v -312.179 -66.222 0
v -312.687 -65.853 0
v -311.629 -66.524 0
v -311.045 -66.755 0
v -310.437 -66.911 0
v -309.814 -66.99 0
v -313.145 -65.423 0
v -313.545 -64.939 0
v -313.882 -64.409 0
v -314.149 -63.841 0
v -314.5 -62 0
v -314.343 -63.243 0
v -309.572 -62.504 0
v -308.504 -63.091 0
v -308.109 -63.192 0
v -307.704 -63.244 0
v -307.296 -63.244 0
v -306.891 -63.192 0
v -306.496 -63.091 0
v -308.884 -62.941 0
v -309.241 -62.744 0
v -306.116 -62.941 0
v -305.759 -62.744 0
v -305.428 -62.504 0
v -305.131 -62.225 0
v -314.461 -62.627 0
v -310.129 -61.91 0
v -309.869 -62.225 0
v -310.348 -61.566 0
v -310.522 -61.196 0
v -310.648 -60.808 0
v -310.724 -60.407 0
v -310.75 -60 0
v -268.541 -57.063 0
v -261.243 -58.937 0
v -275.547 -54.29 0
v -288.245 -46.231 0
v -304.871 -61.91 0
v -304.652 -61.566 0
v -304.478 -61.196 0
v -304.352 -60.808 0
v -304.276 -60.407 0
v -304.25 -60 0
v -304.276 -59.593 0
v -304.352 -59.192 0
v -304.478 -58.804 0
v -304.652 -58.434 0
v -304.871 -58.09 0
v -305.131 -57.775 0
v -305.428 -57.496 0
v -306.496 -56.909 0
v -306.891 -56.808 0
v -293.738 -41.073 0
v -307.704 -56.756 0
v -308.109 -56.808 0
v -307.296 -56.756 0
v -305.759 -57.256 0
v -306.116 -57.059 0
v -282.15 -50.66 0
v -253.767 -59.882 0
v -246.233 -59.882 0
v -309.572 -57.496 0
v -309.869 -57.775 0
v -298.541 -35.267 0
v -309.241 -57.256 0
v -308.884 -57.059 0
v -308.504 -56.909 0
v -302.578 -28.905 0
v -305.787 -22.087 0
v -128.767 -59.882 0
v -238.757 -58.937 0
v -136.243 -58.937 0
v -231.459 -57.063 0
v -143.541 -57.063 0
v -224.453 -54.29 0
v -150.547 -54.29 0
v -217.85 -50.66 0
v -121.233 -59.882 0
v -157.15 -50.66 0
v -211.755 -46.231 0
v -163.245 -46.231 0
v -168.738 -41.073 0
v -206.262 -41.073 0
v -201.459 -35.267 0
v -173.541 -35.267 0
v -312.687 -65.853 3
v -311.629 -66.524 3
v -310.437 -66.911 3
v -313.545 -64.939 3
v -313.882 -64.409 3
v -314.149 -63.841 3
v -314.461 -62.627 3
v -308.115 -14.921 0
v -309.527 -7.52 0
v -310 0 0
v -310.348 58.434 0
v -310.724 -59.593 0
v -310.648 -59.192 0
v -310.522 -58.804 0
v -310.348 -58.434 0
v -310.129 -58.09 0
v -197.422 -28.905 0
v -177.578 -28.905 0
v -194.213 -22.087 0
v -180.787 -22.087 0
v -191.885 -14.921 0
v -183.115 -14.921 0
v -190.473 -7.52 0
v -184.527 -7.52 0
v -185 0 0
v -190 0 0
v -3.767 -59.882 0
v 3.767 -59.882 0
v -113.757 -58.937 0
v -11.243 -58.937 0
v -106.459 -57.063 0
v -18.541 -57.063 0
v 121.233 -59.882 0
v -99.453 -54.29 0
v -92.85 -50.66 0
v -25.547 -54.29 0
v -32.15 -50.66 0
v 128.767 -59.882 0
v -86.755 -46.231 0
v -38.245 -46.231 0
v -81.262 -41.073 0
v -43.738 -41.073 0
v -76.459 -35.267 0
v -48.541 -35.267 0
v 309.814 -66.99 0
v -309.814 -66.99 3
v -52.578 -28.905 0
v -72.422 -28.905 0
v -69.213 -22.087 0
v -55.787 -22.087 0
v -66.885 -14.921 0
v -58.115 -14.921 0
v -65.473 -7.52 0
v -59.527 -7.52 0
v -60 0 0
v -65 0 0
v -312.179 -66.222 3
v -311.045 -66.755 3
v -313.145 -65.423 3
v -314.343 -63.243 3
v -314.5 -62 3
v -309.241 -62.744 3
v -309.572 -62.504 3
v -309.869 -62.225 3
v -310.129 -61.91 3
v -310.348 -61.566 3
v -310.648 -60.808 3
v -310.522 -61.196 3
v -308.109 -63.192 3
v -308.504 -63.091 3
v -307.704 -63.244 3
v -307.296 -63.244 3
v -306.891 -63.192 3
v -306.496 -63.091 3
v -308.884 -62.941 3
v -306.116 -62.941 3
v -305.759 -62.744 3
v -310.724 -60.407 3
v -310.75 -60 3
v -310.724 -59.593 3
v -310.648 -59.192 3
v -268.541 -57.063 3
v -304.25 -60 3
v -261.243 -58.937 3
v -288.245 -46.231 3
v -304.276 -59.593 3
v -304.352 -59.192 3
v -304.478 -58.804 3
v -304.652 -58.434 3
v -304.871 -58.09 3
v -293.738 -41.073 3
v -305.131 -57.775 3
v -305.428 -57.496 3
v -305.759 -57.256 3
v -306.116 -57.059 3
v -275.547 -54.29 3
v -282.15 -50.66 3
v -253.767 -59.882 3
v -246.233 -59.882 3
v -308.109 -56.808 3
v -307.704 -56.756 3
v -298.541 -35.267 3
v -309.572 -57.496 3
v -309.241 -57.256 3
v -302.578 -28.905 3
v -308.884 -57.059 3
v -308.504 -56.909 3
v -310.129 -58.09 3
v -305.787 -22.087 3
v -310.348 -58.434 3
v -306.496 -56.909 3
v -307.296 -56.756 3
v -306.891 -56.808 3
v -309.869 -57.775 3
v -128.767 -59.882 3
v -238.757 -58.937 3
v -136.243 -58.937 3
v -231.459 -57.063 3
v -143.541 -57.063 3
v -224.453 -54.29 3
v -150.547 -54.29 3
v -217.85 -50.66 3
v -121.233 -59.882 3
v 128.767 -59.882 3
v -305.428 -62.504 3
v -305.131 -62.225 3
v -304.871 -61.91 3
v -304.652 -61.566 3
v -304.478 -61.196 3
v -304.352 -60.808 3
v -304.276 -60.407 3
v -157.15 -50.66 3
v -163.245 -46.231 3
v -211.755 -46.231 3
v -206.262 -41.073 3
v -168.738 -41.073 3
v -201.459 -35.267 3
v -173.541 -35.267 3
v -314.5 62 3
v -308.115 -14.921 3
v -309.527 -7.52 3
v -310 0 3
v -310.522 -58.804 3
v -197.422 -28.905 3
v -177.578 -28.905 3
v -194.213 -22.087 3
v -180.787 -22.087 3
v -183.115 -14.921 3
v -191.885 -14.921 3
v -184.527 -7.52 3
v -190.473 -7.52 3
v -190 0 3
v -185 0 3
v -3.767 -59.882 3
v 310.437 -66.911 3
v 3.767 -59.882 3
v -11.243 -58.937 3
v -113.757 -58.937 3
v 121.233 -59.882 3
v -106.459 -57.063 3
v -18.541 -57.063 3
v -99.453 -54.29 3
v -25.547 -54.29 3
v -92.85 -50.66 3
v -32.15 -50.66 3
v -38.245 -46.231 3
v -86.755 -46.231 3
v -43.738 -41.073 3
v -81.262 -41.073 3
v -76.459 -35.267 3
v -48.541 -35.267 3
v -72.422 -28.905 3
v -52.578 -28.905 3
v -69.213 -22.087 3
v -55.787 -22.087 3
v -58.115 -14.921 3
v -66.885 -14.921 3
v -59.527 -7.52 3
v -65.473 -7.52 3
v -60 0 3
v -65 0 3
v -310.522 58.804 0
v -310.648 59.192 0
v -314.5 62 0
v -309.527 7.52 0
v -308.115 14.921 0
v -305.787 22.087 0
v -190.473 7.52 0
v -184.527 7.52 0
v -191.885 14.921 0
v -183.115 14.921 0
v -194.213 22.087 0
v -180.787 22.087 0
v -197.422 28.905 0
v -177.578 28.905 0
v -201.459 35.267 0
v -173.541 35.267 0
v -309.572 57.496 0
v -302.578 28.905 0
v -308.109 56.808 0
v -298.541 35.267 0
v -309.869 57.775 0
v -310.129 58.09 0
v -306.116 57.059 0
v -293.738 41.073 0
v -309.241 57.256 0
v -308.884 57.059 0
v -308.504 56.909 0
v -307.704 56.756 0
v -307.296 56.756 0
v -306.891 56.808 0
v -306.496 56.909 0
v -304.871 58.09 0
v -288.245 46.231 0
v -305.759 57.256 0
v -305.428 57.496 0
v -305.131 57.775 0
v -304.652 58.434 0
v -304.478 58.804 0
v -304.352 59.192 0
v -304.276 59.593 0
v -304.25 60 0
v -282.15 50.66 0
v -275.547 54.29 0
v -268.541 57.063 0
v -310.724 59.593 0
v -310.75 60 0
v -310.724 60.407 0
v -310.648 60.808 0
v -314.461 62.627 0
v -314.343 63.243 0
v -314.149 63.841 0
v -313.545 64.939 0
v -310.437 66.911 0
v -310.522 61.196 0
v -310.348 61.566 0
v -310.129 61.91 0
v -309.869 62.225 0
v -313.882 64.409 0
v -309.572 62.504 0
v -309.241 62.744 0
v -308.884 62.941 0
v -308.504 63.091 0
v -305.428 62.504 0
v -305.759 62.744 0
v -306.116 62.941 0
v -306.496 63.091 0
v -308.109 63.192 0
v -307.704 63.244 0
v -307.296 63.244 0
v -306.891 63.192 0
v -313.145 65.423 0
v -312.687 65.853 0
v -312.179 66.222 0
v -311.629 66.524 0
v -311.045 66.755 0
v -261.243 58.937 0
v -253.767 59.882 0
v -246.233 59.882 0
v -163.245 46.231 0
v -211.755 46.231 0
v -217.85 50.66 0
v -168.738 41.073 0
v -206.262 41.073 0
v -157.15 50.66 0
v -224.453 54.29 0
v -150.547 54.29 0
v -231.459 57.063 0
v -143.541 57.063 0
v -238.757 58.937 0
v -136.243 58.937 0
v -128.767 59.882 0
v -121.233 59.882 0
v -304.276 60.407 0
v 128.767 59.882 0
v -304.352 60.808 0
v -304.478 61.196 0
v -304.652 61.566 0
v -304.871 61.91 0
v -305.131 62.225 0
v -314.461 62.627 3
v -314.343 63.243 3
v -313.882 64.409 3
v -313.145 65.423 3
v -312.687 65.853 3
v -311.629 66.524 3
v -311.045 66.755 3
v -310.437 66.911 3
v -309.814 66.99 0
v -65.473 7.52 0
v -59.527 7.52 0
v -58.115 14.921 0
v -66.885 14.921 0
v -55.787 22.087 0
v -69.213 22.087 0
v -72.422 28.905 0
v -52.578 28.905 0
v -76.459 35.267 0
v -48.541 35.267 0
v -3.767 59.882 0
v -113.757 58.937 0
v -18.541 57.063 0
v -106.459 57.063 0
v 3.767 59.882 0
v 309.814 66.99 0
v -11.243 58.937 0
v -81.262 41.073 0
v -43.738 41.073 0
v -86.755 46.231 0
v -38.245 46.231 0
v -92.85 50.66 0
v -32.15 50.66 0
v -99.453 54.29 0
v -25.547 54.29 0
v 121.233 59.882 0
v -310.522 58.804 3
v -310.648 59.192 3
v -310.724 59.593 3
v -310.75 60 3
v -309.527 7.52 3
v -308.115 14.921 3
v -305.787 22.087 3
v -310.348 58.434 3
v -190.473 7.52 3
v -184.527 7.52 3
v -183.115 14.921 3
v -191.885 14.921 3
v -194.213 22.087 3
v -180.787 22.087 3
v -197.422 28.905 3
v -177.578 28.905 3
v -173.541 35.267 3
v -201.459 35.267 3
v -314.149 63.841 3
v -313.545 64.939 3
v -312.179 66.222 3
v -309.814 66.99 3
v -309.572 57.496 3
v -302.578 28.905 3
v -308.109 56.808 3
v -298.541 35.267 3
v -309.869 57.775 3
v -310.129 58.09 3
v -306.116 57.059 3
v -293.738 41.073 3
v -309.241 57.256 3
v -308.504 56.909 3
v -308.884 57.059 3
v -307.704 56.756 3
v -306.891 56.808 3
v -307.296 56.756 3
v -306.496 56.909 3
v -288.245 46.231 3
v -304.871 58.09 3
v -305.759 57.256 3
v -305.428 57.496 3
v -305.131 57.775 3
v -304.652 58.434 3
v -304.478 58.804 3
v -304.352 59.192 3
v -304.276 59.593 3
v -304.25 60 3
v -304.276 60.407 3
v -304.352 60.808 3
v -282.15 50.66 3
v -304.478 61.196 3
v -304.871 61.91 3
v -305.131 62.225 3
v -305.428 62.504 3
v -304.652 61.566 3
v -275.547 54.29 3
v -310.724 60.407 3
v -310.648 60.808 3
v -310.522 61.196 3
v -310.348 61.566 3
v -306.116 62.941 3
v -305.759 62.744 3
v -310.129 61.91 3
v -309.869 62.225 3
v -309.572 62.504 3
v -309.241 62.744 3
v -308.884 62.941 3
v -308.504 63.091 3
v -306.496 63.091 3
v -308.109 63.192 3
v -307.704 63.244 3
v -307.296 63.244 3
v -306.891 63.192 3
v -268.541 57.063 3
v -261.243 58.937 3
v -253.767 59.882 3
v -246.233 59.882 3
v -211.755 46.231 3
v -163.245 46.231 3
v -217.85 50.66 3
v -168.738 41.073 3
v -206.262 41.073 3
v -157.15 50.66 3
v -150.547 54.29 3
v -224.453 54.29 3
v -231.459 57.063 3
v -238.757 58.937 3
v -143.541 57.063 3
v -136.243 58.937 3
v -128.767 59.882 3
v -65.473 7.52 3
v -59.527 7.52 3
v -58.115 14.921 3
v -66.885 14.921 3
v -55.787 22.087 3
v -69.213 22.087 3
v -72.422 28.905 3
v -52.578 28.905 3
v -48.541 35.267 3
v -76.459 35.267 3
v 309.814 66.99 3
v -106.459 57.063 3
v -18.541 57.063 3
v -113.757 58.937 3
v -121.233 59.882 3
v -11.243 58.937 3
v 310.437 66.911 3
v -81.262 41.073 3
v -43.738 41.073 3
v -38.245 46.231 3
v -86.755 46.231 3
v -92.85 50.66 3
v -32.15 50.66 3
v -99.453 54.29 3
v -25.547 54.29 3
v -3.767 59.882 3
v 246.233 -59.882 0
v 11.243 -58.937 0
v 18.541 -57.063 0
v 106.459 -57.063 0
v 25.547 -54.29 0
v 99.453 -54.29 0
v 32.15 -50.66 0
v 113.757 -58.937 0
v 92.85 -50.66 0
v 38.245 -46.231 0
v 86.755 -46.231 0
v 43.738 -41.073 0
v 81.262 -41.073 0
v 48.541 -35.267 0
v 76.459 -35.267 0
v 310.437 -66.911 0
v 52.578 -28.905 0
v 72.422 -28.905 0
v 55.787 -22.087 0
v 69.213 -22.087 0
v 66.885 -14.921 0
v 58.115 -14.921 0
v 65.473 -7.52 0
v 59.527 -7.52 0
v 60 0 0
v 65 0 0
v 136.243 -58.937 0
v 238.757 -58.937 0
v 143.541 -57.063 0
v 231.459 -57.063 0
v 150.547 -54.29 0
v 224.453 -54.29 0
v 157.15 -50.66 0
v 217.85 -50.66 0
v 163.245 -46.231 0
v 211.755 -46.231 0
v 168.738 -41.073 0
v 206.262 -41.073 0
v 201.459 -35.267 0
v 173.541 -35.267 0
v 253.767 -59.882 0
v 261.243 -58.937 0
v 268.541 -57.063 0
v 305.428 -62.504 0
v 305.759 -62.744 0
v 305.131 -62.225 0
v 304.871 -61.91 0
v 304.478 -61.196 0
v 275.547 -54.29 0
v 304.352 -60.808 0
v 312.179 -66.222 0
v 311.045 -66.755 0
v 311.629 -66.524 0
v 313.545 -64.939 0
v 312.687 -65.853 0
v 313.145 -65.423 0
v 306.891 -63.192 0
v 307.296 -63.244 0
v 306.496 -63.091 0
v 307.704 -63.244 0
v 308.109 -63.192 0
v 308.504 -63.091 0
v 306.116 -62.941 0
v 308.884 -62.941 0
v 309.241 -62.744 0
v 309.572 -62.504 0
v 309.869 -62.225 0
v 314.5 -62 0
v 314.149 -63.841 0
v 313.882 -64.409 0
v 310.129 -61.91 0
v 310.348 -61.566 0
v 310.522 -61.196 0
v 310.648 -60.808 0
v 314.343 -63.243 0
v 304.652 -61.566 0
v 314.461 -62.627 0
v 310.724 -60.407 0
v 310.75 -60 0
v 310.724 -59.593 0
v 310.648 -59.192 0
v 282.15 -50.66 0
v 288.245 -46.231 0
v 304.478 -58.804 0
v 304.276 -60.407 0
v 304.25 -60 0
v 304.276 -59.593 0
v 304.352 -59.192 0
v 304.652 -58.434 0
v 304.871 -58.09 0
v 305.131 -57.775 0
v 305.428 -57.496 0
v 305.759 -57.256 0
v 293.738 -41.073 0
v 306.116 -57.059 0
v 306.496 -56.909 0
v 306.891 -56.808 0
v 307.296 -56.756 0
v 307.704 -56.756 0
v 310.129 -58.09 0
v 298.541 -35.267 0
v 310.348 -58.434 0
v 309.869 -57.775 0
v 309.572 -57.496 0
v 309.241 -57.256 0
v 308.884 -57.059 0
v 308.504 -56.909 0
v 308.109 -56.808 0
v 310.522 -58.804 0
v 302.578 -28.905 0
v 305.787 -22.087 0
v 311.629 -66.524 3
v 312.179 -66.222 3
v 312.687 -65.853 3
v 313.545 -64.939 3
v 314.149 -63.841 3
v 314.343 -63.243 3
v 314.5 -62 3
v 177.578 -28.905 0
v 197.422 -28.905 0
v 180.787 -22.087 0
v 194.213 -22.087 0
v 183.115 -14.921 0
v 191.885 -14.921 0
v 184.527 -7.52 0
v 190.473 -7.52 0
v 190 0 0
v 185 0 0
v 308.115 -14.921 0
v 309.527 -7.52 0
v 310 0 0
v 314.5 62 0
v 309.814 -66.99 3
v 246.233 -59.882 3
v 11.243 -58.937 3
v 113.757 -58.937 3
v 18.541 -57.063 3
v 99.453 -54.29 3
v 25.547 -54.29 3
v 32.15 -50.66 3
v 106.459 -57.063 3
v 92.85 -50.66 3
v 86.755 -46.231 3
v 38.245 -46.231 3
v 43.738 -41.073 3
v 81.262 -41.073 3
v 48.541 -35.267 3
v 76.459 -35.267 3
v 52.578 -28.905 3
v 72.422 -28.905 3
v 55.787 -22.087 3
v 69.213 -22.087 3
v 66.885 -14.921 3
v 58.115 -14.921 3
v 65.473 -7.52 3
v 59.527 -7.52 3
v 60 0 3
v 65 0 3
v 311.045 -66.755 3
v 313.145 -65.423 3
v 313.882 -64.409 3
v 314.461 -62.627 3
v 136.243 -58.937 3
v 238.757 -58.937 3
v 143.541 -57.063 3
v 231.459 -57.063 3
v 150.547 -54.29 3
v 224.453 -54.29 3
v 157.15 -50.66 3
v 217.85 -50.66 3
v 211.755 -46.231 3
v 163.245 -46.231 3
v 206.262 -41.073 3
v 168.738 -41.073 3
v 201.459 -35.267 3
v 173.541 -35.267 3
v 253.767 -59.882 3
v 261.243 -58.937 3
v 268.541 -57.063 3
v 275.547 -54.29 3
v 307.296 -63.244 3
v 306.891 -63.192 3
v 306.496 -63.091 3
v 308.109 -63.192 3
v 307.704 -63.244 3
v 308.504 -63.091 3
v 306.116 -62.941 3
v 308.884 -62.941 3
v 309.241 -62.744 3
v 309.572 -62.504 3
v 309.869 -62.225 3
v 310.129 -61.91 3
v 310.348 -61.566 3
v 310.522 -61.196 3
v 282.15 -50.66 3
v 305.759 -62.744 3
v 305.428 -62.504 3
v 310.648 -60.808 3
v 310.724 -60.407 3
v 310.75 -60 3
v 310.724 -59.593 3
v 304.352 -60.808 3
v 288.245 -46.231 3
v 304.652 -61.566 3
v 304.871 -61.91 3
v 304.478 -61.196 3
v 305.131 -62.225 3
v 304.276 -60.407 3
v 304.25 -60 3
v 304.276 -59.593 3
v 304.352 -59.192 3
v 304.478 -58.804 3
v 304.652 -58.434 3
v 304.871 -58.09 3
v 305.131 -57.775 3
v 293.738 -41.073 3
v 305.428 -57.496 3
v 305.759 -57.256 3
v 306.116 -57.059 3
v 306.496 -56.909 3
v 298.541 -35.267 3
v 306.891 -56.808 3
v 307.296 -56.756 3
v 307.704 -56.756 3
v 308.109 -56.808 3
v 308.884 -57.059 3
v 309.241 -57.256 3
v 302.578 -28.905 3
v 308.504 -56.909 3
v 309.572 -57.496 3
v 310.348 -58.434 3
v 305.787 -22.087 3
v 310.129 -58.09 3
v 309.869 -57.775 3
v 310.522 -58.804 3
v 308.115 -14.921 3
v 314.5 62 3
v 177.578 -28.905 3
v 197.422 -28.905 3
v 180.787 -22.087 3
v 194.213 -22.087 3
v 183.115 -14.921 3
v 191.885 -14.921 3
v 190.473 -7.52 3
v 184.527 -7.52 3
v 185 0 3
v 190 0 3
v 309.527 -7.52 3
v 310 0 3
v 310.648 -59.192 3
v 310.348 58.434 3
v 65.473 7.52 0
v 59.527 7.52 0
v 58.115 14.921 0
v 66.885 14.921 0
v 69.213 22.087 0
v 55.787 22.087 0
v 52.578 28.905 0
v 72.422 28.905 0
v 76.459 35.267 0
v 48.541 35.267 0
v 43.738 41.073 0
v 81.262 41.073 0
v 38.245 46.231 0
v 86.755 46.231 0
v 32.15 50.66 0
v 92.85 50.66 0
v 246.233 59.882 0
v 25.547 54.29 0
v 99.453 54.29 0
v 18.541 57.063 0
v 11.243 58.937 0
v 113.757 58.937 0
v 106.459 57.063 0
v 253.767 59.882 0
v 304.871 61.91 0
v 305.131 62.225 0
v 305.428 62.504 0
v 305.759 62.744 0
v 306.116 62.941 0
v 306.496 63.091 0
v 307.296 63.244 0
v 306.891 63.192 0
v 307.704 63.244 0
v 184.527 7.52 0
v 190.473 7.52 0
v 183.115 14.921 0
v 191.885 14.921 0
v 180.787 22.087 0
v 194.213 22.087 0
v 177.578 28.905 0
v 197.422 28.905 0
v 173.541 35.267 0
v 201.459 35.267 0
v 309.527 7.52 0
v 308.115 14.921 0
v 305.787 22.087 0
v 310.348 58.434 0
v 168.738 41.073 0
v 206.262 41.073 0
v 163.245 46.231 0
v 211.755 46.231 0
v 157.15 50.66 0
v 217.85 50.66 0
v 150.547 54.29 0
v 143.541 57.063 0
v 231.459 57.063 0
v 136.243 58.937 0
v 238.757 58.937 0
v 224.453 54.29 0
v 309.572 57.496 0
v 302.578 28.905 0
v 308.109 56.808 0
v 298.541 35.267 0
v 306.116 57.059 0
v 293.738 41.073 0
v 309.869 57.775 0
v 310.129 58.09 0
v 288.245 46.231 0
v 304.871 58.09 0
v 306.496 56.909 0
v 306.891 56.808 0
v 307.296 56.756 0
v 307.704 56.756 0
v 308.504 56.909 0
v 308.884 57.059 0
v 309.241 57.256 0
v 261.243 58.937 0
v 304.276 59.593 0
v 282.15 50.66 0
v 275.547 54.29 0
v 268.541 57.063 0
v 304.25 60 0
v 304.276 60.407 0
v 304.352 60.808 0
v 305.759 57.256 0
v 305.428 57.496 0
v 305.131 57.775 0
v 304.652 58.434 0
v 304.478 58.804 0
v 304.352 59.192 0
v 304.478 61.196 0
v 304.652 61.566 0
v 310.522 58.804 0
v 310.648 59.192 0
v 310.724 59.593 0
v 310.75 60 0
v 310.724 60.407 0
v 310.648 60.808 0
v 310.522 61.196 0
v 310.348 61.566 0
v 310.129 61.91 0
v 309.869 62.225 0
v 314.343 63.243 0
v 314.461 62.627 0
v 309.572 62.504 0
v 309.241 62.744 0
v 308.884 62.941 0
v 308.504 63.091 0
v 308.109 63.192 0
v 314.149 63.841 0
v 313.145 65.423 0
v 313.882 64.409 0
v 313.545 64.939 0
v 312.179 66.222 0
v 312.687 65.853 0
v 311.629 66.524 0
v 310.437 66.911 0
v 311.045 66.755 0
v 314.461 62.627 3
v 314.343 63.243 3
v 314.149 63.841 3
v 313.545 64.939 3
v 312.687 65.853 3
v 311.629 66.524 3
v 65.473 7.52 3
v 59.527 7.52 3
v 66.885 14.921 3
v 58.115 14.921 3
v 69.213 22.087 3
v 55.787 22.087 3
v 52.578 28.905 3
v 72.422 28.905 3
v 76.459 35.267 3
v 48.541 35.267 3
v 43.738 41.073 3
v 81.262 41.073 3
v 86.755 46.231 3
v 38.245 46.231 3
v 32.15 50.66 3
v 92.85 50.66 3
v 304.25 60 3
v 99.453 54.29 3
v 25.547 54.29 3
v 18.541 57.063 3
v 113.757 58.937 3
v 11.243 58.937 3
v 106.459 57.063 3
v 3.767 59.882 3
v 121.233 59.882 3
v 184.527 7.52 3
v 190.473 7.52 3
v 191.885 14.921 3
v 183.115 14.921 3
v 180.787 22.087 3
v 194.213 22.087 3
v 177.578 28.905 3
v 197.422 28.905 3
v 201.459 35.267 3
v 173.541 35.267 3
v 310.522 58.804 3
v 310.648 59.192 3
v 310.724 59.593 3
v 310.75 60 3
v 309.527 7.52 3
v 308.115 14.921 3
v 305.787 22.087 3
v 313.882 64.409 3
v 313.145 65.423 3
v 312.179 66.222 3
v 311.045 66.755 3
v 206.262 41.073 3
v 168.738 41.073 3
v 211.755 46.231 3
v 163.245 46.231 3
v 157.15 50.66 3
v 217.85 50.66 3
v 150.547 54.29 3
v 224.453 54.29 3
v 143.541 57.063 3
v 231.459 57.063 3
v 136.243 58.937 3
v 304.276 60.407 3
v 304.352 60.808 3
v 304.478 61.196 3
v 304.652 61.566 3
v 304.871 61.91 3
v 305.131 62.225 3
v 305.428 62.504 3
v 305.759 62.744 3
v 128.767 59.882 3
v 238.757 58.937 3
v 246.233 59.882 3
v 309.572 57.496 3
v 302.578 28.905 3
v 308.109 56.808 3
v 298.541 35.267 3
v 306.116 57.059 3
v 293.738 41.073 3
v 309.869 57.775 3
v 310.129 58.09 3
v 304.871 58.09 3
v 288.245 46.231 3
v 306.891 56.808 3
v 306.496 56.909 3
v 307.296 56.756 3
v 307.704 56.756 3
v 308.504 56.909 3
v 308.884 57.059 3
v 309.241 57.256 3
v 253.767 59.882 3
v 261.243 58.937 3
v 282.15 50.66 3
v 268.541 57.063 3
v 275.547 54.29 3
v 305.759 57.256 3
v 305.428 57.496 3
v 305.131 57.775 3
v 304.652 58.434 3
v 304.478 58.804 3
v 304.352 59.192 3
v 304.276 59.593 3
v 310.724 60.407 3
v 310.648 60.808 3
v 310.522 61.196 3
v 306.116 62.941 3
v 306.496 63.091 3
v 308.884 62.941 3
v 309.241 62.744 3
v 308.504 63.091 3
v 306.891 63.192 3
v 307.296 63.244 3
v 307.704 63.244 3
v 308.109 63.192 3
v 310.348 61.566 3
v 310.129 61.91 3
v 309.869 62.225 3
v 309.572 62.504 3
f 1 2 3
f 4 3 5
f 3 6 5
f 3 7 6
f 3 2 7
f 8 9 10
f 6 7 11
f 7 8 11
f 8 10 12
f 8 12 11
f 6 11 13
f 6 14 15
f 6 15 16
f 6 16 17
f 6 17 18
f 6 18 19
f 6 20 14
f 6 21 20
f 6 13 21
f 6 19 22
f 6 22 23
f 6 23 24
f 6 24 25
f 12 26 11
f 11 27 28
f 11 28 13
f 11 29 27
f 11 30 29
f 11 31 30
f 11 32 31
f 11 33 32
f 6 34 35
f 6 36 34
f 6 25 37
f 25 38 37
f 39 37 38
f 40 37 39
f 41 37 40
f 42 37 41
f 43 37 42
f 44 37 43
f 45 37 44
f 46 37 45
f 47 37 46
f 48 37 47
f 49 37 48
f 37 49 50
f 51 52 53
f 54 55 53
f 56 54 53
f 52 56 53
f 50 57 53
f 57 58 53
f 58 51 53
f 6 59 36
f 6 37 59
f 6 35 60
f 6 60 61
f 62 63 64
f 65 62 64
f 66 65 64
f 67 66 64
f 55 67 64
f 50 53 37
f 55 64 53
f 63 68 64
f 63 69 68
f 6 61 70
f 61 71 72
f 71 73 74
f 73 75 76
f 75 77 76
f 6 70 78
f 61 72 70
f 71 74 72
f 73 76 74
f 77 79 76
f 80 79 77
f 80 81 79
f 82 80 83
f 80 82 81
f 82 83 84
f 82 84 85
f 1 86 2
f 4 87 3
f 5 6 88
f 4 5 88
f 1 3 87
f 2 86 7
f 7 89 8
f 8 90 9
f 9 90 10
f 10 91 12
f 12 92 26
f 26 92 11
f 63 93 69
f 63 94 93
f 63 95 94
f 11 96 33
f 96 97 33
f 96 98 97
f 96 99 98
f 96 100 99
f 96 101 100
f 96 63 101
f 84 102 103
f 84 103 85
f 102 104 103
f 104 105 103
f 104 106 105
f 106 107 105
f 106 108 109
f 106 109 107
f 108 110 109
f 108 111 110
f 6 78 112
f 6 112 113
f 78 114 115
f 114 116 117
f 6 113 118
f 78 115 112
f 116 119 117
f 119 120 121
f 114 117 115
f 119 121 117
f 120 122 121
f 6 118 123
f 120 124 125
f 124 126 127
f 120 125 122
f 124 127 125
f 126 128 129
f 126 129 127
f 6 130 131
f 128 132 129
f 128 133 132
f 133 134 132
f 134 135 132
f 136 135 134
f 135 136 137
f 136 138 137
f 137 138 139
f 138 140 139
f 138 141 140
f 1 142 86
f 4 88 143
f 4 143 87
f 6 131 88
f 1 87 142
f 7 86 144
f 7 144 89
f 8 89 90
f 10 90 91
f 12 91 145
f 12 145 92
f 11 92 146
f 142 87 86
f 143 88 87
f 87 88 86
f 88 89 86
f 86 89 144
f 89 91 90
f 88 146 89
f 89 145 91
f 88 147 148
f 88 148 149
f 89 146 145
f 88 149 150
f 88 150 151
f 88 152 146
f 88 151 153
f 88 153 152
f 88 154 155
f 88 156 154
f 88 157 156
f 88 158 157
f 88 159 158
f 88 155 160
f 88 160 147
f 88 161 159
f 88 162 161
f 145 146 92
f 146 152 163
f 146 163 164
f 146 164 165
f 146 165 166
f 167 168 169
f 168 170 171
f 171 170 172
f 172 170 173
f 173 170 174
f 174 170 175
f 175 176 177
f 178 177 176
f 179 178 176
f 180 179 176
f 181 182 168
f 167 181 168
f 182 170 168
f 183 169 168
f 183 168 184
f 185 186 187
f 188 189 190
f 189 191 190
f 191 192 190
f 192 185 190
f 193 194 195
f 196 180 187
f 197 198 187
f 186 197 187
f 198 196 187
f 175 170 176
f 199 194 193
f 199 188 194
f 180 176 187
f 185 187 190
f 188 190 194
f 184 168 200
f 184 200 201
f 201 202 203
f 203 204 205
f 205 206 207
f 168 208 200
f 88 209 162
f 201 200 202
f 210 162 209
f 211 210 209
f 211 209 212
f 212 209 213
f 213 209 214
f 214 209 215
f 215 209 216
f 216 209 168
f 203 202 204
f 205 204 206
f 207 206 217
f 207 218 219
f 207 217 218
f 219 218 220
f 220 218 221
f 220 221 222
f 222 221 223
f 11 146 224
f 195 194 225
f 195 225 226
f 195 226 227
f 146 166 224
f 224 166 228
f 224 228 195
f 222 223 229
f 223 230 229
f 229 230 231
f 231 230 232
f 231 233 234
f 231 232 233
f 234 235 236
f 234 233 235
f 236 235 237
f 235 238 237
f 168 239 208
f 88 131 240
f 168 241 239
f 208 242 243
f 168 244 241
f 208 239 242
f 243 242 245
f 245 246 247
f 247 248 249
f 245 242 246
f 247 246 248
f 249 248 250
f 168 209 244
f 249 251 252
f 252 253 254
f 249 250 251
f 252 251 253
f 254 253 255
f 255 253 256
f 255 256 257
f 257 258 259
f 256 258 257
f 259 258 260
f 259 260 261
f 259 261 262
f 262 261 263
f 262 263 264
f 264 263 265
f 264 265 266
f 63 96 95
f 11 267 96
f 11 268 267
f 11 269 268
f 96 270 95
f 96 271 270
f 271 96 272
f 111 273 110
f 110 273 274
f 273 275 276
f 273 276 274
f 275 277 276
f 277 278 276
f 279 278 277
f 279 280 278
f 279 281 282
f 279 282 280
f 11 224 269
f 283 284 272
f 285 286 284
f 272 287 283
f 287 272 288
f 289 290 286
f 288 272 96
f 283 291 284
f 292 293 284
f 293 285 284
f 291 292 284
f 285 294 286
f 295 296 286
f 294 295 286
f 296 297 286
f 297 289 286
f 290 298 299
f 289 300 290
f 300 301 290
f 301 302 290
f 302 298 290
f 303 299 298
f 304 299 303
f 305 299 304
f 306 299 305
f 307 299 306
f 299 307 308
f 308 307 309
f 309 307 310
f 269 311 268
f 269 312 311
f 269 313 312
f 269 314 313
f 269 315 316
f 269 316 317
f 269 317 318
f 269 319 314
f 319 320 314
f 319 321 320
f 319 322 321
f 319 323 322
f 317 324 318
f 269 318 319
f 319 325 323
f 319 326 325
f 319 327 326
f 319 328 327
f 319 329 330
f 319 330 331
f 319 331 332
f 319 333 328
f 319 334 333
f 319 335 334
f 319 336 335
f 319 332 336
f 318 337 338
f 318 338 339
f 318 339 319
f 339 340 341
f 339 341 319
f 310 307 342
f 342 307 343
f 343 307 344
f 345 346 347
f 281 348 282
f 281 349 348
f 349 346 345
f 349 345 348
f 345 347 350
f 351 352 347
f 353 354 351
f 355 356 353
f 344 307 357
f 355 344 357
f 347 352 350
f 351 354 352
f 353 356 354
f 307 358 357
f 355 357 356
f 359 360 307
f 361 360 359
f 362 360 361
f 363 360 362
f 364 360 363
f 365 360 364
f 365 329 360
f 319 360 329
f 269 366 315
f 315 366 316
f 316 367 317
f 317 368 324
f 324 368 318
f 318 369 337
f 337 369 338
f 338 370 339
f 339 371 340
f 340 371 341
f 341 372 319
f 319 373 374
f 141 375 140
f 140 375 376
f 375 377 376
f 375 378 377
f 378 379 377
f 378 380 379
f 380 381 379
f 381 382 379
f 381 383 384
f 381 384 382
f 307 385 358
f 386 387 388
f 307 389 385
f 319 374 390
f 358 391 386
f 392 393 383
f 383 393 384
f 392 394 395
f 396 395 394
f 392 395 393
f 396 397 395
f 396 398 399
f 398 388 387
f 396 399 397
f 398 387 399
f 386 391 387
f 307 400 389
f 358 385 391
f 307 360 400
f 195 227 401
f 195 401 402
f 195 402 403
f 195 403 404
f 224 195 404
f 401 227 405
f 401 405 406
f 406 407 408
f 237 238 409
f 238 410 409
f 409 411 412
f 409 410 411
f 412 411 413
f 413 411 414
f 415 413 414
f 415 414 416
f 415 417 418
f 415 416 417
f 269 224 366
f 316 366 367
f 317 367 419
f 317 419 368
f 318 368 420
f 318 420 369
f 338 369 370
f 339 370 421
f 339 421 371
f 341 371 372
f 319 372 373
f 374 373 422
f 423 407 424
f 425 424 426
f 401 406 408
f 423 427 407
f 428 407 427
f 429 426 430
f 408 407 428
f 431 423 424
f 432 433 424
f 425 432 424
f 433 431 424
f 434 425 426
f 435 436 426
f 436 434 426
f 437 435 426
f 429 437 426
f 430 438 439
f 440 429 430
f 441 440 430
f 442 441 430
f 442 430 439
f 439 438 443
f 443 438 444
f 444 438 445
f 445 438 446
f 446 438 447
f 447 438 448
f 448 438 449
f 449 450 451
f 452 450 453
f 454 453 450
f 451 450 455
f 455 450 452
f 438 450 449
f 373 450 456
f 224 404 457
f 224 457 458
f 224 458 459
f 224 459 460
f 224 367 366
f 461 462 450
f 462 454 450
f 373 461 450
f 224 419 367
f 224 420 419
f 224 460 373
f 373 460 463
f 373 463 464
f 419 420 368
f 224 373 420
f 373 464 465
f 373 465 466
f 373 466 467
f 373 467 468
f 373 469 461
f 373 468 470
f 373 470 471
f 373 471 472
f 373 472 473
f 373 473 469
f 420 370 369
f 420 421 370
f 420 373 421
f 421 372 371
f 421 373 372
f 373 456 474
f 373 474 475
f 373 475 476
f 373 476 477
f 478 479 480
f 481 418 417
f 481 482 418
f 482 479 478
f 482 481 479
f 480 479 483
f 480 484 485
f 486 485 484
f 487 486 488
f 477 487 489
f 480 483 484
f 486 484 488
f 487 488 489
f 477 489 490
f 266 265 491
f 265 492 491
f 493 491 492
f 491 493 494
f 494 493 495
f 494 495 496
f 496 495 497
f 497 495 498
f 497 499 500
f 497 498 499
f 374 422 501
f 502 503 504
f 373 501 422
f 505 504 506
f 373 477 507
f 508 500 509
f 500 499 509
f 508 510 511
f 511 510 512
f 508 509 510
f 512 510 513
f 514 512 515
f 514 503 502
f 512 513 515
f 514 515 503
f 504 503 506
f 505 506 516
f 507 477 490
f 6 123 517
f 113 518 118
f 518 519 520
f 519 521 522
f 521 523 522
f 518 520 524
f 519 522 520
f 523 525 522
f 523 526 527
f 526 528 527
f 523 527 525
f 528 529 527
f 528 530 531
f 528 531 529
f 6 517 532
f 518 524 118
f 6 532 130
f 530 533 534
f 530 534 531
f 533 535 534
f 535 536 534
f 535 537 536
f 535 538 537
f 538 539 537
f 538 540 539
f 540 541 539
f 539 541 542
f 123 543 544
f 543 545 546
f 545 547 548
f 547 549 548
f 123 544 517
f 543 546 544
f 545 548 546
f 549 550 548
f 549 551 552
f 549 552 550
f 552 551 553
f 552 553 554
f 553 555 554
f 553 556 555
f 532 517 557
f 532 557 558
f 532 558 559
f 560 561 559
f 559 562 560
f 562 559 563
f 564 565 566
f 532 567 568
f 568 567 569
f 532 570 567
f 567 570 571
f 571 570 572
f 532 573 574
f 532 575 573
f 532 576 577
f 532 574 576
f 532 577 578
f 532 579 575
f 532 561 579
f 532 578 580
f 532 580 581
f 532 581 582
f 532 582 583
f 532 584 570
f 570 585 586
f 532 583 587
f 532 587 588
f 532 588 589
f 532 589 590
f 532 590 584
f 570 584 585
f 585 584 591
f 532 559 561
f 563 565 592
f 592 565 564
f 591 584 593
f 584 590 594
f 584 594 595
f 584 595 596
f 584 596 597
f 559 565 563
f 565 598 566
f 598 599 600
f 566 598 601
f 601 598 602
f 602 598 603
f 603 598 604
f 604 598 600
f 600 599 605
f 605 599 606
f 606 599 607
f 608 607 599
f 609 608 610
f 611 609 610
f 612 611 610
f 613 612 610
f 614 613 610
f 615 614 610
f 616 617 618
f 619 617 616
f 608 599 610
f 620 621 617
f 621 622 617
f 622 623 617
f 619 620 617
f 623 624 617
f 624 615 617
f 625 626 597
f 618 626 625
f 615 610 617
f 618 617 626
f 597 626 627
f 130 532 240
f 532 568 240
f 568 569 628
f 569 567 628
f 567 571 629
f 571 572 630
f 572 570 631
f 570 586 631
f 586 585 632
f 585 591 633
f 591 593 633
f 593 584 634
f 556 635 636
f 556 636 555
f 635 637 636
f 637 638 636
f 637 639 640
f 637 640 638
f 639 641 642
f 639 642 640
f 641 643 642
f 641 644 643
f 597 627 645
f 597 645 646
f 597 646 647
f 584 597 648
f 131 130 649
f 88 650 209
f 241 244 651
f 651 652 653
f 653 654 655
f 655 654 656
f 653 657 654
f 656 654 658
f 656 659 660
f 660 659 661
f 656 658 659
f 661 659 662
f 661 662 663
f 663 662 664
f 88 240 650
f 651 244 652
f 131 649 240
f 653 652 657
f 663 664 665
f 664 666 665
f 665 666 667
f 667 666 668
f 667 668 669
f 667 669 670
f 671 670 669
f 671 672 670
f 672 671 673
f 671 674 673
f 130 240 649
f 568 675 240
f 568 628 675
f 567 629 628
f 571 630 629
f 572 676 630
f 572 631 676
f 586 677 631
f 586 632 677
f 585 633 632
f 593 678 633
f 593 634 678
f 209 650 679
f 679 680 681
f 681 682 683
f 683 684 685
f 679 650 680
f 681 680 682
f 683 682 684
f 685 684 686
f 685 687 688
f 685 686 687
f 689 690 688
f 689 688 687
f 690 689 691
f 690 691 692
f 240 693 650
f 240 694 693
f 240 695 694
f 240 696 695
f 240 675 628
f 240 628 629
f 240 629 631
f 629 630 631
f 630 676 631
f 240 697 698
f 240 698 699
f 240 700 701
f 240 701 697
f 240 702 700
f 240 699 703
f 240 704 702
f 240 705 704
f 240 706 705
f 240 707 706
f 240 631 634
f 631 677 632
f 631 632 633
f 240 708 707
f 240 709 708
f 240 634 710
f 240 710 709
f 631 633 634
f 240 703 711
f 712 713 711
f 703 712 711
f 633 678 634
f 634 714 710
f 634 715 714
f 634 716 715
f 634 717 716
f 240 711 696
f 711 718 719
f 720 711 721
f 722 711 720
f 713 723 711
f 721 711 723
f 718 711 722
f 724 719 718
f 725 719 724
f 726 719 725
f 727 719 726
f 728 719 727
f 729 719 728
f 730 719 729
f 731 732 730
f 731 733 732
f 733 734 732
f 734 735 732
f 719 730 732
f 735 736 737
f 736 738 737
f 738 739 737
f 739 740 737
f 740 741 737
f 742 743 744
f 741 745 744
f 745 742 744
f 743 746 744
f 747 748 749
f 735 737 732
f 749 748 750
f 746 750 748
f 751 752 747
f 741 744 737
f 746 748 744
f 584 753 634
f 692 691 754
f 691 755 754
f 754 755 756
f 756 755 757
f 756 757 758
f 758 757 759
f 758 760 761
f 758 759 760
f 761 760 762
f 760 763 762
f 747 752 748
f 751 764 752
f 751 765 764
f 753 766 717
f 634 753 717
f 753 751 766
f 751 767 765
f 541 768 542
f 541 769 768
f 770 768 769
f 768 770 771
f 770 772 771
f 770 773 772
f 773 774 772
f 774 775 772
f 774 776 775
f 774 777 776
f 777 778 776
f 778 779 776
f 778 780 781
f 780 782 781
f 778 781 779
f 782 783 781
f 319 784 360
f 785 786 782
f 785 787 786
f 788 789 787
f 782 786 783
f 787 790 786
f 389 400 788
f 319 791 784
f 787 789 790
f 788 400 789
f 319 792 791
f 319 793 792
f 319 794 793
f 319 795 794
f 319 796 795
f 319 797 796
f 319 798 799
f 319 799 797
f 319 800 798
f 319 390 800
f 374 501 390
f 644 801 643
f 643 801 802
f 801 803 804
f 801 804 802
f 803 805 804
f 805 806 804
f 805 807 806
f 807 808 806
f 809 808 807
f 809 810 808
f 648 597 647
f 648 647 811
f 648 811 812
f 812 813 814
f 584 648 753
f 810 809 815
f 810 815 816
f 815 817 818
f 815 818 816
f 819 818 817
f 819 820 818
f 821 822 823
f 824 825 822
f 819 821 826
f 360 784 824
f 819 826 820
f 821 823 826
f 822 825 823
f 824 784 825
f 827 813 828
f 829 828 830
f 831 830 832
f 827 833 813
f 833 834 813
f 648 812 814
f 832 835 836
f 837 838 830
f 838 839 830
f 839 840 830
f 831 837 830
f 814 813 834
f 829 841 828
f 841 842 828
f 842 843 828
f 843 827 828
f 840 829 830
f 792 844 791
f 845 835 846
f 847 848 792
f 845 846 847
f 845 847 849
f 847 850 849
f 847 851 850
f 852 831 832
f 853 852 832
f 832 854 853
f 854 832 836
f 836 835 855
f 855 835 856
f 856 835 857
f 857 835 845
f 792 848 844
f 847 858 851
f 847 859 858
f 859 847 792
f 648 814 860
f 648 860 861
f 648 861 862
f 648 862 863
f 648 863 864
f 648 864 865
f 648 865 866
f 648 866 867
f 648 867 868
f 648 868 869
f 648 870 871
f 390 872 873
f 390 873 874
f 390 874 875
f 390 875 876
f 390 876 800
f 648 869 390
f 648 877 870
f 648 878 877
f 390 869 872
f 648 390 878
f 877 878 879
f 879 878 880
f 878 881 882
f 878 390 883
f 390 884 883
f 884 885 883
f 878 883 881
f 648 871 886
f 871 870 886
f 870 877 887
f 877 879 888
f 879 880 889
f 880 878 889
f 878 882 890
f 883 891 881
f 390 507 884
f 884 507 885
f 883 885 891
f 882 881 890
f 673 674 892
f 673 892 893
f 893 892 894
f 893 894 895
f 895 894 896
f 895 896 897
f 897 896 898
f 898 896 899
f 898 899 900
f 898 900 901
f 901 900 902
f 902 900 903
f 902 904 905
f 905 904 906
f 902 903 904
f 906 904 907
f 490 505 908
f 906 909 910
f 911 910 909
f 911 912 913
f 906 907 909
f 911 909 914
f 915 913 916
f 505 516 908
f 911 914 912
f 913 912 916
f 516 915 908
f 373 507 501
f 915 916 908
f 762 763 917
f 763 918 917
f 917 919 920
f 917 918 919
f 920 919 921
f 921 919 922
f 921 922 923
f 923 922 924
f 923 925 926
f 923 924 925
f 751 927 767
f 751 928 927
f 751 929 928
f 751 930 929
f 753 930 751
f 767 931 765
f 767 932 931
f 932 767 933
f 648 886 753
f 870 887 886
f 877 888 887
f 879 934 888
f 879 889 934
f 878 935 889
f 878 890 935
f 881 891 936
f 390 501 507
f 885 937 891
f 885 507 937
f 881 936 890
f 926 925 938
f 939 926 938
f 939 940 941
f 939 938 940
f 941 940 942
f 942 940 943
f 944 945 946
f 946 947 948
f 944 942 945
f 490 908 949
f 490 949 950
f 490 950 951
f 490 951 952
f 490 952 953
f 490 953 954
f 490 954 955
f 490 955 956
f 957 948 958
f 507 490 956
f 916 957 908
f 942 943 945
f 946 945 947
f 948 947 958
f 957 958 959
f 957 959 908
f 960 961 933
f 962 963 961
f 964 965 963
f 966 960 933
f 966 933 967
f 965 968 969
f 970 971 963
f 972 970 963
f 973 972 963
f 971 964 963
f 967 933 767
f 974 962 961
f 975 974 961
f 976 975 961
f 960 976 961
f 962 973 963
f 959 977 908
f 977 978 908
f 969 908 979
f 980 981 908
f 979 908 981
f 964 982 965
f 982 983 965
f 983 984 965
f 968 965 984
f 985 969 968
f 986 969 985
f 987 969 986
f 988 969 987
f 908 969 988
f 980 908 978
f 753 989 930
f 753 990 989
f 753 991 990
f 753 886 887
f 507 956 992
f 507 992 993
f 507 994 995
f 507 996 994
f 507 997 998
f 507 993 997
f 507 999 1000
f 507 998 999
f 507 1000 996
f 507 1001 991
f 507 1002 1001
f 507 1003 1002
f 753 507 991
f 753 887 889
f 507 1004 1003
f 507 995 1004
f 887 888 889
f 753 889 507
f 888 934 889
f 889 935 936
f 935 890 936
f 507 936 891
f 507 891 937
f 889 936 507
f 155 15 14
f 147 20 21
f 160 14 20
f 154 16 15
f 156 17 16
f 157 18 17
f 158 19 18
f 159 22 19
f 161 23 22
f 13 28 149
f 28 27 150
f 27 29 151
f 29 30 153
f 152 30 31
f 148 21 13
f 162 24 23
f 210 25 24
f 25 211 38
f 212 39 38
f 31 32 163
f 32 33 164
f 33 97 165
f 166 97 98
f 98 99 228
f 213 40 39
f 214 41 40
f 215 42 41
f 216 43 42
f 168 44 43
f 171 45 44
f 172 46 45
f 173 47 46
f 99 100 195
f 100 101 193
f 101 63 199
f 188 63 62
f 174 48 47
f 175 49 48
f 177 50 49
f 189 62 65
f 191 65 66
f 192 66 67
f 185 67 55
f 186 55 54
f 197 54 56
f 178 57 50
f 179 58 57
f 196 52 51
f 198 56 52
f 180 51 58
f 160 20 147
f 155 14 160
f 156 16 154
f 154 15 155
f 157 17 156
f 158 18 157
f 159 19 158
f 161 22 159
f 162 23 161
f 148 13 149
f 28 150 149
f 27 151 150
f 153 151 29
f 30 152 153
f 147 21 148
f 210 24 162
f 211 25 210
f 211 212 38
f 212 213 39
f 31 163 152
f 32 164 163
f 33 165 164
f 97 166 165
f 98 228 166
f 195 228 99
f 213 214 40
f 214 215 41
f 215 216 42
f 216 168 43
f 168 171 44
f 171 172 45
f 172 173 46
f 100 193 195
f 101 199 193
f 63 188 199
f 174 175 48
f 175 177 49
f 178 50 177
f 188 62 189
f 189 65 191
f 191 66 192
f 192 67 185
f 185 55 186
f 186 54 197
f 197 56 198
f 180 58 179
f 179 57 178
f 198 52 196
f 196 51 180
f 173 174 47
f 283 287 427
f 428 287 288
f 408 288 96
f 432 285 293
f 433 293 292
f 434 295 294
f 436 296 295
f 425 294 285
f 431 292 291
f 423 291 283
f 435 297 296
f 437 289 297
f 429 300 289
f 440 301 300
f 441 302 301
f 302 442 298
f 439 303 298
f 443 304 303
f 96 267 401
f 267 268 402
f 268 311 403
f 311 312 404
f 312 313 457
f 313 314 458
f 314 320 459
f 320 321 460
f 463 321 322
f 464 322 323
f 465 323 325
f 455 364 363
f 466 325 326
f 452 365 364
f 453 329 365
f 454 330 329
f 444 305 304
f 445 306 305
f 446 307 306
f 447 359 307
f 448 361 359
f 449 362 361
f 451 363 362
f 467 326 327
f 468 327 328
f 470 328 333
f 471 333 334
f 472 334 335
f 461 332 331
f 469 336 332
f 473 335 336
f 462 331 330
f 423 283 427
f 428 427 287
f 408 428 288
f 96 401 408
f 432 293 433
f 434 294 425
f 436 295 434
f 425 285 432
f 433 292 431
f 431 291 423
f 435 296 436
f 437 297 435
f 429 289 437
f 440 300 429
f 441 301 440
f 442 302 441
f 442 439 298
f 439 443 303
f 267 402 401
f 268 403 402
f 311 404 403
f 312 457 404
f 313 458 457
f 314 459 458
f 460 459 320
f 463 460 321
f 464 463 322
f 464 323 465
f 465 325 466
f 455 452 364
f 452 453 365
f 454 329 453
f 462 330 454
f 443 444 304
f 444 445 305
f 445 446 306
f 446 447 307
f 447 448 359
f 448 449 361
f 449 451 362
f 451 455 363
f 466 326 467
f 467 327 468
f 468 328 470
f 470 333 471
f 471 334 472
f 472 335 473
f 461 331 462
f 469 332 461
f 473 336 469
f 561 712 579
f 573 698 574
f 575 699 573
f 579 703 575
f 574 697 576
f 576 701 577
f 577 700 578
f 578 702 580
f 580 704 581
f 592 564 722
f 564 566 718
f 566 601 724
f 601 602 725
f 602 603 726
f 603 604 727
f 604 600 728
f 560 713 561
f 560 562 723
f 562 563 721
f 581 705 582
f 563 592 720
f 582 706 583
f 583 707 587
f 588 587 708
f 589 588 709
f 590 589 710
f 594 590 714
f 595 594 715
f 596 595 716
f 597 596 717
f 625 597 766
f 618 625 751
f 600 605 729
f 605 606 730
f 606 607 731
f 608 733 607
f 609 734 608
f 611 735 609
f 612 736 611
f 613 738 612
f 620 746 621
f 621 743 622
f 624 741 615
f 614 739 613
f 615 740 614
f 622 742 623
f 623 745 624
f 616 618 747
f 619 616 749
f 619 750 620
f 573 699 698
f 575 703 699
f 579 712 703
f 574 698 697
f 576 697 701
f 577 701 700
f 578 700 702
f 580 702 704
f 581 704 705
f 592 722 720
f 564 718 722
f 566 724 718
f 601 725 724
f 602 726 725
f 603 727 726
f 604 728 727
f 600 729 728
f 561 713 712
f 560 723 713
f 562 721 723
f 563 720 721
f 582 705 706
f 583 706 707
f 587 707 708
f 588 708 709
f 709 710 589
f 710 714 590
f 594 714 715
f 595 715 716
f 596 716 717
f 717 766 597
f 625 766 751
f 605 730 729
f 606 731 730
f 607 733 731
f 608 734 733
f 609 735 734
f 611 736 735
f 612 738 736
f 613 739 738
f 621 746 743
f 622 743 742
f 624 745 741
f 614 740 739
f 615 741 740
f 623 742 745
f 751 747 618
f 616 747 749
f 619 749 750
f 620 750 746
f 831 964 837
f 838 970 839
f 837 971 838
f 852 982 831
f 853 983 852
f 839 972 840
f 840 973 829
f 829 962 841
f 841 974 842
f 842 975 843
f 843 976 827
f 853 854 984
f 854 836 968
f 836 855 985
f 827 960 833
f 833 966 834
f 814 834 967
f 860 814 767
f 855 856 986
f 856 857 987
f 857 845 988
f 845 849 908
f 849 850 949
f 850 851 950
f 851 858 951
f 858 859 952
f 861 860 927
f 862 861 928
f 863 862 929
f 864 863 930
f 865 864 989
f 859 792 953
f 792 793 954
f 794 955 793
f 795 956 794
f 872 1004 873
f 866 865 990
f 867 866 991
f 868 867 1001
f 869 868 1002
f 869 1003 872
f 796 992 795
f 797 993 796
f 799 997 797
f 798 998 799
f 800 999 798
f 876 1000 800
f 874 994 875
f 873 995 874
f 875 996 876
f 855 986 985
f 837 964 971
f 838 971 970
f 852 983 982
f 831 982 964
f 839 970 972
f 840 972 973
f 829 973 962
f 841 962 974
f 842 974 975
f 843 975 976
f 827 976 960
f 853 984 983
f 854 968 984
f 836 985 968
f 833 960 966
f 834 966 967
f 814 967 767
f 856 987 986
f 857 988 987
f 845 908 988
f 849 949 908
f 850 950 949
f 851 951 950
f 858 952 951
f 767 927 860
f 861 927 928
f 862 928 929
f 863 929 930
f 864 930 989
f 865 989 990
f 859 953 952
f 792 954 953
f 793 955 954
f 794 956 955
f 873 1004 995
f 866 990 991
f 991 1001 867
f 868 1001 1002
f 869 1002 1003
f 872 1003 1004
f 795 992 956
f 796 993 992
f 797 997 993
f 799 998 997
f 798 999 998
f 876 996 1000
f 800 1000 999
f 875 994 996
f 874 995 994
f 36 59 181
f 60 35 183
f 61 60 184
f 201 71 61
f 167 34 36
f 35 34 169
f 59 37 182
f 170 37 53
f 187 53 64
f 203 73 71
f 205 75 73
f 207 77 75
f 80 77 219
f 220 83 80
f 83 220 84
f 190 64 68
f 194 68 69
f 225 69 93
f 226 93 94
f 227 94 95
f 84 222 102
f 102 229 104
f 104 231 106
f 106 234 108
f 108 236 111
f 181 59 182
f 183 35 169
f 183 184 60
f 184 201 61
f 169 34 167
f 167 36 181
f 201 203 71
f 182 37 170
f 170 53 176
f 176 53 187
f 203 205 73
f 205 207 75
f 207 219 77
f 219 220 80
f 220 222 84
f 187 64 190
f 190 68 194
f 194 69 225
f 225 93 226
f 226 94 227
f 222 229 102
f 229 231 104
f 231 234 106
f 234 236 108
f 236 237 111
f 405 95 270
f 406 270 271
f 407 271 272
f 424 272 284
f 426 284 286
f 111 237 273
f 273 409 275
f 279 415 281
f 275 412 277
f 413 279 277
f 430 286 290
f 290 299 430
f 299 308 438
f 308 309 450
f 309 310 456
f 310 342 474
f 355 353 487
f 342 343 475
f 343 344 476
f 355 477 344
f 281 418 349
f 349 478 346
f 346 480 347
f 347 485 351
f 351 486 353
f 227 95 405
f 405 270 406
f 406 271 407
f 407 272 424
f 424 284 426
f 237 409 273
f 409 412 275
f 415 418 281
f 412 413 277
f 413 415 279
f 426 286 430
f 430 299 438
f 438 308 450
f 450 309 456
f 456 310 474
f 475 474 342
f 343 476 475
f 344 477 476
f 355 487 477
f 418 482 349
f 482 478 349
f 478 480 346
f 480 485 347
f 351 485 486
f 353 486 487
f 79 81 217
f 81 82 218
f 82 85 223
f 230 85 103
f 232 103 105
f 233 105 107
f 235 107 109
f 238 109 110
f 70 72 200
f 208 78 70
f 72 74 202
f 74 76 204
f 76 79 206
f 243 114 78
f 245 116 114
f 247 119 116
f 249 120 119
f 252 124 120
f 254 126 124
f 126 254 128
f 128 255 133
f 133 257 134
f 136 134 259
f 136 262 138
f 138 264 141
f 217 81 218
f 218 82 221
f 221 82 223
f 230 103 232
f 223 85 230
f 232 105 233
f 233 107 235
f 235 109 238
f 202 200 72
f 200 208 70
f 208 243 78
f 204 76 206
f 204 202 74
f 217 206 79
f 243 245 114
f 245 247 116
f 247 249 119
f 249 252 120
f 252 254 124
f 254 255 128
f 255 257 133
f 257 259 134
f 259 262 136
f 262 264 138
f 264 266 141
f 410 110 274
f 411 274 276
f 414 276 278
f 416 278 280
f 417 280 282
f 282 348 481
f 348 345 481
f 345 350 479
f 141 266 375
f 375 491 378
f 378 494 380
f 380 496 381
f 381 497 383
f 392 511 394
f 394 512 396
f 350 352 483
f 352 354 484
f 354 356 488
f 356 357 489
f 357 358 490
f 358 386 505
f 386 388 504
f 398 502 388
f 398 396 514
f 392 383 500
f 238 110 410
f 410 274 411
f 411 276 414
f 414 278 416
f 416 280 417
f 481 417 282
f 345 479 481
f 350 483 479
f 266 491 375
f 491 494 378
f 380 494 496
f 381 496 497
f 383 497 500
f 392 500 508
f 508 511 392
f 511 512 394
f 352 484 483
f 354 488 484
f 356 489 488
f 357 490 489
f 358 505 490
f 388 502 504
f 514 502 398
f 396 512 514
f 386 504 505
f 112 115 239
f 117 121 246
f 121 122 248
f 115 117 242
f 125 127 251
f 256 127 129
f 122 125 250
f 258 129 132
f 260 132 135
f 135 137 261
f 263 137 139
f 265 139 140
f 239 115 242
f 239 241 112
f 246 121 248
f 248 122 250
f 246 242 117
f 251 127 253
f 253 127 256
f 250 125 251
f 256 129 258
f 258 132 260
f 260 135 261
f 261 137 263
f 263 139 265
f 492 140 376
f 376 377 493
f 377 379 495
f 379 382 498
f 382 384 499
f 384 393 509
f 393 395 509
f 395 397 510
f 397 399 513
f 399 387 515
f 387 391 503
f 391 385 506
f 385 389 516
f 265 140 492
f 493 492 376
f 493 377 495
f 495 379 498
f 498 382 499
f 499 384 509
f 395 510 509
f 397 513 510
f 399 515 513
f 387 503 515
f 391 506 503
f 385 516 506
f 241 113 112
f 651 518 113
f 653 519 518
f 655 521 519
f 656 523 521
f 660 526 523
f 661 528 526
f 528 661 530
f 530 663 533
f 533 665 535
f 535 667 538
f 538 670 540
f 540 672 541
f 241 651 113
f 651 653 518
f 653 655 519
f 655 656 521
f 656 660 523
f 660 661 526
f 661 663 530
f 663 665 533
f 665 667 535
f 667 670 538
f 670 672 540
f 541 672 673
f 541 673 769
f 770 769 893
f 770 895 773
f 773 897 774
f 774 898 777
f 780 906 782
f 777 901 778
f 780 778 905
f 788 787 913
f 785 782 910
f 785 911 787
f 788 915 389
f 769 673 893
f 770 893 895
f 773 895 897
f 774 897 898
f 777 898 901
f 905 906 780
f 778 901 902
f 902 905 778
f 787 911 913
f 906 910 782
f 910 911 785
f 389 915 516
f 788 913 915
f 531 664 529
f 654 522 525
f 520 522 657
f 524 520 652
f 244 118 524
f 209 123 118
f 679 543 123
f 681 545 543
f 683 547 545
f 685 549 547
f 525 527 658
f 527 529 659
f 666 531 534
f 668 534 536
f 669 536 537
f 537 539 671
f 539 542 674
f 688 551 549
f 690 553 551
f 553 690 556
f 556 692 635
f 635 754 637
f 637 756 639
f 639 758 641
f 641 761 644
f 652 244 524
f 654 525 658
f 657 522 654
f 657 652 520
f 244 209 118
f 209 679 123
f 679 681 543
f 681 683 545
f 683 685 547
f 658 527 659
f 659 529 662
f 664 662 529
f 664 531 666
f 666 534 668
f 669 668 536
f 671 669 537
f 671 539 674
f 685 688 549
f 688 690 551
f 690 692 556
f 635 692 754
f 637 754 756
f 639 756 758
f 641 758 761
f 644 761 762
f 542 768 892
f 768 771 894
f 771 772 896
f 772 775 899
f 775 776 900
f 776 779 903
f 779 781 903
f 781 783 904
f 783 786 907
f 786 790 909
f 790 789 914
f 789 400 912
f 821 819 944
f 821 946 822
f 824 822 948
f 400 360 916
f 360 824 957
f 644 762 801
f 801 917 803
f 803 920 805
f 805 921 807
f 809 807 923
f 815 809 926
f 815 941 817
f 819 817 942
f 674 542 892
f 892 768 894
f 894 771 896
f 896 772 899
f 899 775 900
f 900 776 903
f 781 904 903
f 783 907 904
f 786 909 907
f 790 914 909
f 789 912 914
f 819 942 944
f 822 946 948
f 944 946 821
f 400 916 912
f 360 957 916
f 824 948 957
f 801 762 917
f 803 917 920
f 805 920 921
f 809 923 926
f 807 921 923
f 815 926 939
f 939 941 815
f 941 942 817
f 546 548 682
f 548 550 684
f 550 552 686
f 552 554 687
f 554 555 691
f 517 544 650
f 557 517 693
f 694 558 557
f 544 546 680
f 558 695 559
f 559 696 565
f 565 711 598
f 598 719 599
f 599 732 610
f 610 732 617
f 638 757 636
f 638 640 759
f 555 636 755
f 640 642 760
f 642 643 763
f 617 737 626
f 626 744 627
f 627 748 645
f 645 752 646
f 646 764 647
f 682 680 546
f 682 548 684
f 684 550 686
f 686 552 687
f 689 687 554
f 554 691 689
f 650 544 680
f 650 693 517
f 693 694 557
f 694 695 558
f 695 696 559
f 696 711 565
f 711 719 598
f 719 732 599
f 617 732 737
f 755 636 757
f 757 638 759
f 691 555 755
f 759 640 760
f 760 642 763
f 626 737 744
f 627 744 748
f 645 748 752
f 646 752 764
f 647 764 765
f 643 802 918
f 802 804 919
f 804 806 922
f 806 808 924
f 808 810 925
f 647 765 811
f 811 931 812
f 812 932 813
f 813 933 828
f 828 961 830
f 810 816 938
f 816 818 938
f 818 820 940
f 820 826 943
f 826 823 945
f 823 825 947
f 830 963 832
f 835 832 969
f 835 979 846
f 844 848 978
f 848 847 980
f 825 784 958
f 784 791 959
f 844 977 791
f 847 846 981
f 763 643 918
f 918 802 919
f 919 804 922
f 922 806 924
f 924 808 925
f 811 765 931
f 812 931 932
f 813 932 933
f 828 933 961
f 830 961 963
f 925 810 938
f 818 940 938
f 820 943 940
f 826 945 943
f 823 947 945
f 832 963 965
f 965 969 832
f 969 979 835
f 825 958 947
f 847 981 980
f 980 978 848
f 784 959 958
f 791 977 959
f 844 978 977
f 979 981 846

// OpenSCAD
$fn = 50;

difference() {
	union() {
		hull() {
			translate(v = [-309.5, 62.0, 0]) {
				cylinder(h = 3, r = 5);
			}
			translate(v = [309.5, 62.0, 0]) {
				cylinder(h = 3, r = 5);
			}
			translate(v = [-309.5, -62.0, 0]) {
				cylinder(h = 3, r = 5);
			}
			translate(v = [309.5, -62.0, 0]) {
				cylinder(h = 3, r = 5);
			}
		}
	}
	union() {
		translate(v = [-307.5, -60.0, -100.0]) {
			cylinder(h = 200, r = 3.25);
		}
		translate(v = [-307.5, 60.0, -100.0]) {
			cylinder(h = 200, r = 3.25);
		}
		translate(v = [307.5, -60.0, -100.0]) {
			cylinder(h = 200, r = 3.25);
		}
		translate(v = [307.5, 60.0, -100.0]) {
			cylinder(h = 200, r = 3.25);
		}
		translate(v = [-307.5, -60.0, -100.0]) {
			cylinder(h = 200, r = 1.8);
		}
		translate(v = [-307.5, 60.0, -100.0]) {
			cylinder(h = 200, r = 1.8);
		}
		translate(v = [307.5, -60.0, -100.0]) {
			cylinder(h = 200, r = 1.8);
		}
		translate(v = [307.5, 60.0, -100.0]) {
			cylinder(h = 200, r = 1.8);
		}
		translate(v = [-250.0, 0, 0.0]) {
			cylinder(h = 3, r = 60.0);
		}
		translate(v = [-125.0, 0, 0.0]) {
			cylinder(h = 3, r = 60.0);
		}
		cylinder(h = 3, r = 60.0);
		translate(v = [125.0, 0, 0.0]) {
			cylinder(h = 3, r = 60.0);
		}
		translate(v = [250.0, 0, 0.0]) {
			cylinder(h = 3, r = 60.0);
		}
	}
}
